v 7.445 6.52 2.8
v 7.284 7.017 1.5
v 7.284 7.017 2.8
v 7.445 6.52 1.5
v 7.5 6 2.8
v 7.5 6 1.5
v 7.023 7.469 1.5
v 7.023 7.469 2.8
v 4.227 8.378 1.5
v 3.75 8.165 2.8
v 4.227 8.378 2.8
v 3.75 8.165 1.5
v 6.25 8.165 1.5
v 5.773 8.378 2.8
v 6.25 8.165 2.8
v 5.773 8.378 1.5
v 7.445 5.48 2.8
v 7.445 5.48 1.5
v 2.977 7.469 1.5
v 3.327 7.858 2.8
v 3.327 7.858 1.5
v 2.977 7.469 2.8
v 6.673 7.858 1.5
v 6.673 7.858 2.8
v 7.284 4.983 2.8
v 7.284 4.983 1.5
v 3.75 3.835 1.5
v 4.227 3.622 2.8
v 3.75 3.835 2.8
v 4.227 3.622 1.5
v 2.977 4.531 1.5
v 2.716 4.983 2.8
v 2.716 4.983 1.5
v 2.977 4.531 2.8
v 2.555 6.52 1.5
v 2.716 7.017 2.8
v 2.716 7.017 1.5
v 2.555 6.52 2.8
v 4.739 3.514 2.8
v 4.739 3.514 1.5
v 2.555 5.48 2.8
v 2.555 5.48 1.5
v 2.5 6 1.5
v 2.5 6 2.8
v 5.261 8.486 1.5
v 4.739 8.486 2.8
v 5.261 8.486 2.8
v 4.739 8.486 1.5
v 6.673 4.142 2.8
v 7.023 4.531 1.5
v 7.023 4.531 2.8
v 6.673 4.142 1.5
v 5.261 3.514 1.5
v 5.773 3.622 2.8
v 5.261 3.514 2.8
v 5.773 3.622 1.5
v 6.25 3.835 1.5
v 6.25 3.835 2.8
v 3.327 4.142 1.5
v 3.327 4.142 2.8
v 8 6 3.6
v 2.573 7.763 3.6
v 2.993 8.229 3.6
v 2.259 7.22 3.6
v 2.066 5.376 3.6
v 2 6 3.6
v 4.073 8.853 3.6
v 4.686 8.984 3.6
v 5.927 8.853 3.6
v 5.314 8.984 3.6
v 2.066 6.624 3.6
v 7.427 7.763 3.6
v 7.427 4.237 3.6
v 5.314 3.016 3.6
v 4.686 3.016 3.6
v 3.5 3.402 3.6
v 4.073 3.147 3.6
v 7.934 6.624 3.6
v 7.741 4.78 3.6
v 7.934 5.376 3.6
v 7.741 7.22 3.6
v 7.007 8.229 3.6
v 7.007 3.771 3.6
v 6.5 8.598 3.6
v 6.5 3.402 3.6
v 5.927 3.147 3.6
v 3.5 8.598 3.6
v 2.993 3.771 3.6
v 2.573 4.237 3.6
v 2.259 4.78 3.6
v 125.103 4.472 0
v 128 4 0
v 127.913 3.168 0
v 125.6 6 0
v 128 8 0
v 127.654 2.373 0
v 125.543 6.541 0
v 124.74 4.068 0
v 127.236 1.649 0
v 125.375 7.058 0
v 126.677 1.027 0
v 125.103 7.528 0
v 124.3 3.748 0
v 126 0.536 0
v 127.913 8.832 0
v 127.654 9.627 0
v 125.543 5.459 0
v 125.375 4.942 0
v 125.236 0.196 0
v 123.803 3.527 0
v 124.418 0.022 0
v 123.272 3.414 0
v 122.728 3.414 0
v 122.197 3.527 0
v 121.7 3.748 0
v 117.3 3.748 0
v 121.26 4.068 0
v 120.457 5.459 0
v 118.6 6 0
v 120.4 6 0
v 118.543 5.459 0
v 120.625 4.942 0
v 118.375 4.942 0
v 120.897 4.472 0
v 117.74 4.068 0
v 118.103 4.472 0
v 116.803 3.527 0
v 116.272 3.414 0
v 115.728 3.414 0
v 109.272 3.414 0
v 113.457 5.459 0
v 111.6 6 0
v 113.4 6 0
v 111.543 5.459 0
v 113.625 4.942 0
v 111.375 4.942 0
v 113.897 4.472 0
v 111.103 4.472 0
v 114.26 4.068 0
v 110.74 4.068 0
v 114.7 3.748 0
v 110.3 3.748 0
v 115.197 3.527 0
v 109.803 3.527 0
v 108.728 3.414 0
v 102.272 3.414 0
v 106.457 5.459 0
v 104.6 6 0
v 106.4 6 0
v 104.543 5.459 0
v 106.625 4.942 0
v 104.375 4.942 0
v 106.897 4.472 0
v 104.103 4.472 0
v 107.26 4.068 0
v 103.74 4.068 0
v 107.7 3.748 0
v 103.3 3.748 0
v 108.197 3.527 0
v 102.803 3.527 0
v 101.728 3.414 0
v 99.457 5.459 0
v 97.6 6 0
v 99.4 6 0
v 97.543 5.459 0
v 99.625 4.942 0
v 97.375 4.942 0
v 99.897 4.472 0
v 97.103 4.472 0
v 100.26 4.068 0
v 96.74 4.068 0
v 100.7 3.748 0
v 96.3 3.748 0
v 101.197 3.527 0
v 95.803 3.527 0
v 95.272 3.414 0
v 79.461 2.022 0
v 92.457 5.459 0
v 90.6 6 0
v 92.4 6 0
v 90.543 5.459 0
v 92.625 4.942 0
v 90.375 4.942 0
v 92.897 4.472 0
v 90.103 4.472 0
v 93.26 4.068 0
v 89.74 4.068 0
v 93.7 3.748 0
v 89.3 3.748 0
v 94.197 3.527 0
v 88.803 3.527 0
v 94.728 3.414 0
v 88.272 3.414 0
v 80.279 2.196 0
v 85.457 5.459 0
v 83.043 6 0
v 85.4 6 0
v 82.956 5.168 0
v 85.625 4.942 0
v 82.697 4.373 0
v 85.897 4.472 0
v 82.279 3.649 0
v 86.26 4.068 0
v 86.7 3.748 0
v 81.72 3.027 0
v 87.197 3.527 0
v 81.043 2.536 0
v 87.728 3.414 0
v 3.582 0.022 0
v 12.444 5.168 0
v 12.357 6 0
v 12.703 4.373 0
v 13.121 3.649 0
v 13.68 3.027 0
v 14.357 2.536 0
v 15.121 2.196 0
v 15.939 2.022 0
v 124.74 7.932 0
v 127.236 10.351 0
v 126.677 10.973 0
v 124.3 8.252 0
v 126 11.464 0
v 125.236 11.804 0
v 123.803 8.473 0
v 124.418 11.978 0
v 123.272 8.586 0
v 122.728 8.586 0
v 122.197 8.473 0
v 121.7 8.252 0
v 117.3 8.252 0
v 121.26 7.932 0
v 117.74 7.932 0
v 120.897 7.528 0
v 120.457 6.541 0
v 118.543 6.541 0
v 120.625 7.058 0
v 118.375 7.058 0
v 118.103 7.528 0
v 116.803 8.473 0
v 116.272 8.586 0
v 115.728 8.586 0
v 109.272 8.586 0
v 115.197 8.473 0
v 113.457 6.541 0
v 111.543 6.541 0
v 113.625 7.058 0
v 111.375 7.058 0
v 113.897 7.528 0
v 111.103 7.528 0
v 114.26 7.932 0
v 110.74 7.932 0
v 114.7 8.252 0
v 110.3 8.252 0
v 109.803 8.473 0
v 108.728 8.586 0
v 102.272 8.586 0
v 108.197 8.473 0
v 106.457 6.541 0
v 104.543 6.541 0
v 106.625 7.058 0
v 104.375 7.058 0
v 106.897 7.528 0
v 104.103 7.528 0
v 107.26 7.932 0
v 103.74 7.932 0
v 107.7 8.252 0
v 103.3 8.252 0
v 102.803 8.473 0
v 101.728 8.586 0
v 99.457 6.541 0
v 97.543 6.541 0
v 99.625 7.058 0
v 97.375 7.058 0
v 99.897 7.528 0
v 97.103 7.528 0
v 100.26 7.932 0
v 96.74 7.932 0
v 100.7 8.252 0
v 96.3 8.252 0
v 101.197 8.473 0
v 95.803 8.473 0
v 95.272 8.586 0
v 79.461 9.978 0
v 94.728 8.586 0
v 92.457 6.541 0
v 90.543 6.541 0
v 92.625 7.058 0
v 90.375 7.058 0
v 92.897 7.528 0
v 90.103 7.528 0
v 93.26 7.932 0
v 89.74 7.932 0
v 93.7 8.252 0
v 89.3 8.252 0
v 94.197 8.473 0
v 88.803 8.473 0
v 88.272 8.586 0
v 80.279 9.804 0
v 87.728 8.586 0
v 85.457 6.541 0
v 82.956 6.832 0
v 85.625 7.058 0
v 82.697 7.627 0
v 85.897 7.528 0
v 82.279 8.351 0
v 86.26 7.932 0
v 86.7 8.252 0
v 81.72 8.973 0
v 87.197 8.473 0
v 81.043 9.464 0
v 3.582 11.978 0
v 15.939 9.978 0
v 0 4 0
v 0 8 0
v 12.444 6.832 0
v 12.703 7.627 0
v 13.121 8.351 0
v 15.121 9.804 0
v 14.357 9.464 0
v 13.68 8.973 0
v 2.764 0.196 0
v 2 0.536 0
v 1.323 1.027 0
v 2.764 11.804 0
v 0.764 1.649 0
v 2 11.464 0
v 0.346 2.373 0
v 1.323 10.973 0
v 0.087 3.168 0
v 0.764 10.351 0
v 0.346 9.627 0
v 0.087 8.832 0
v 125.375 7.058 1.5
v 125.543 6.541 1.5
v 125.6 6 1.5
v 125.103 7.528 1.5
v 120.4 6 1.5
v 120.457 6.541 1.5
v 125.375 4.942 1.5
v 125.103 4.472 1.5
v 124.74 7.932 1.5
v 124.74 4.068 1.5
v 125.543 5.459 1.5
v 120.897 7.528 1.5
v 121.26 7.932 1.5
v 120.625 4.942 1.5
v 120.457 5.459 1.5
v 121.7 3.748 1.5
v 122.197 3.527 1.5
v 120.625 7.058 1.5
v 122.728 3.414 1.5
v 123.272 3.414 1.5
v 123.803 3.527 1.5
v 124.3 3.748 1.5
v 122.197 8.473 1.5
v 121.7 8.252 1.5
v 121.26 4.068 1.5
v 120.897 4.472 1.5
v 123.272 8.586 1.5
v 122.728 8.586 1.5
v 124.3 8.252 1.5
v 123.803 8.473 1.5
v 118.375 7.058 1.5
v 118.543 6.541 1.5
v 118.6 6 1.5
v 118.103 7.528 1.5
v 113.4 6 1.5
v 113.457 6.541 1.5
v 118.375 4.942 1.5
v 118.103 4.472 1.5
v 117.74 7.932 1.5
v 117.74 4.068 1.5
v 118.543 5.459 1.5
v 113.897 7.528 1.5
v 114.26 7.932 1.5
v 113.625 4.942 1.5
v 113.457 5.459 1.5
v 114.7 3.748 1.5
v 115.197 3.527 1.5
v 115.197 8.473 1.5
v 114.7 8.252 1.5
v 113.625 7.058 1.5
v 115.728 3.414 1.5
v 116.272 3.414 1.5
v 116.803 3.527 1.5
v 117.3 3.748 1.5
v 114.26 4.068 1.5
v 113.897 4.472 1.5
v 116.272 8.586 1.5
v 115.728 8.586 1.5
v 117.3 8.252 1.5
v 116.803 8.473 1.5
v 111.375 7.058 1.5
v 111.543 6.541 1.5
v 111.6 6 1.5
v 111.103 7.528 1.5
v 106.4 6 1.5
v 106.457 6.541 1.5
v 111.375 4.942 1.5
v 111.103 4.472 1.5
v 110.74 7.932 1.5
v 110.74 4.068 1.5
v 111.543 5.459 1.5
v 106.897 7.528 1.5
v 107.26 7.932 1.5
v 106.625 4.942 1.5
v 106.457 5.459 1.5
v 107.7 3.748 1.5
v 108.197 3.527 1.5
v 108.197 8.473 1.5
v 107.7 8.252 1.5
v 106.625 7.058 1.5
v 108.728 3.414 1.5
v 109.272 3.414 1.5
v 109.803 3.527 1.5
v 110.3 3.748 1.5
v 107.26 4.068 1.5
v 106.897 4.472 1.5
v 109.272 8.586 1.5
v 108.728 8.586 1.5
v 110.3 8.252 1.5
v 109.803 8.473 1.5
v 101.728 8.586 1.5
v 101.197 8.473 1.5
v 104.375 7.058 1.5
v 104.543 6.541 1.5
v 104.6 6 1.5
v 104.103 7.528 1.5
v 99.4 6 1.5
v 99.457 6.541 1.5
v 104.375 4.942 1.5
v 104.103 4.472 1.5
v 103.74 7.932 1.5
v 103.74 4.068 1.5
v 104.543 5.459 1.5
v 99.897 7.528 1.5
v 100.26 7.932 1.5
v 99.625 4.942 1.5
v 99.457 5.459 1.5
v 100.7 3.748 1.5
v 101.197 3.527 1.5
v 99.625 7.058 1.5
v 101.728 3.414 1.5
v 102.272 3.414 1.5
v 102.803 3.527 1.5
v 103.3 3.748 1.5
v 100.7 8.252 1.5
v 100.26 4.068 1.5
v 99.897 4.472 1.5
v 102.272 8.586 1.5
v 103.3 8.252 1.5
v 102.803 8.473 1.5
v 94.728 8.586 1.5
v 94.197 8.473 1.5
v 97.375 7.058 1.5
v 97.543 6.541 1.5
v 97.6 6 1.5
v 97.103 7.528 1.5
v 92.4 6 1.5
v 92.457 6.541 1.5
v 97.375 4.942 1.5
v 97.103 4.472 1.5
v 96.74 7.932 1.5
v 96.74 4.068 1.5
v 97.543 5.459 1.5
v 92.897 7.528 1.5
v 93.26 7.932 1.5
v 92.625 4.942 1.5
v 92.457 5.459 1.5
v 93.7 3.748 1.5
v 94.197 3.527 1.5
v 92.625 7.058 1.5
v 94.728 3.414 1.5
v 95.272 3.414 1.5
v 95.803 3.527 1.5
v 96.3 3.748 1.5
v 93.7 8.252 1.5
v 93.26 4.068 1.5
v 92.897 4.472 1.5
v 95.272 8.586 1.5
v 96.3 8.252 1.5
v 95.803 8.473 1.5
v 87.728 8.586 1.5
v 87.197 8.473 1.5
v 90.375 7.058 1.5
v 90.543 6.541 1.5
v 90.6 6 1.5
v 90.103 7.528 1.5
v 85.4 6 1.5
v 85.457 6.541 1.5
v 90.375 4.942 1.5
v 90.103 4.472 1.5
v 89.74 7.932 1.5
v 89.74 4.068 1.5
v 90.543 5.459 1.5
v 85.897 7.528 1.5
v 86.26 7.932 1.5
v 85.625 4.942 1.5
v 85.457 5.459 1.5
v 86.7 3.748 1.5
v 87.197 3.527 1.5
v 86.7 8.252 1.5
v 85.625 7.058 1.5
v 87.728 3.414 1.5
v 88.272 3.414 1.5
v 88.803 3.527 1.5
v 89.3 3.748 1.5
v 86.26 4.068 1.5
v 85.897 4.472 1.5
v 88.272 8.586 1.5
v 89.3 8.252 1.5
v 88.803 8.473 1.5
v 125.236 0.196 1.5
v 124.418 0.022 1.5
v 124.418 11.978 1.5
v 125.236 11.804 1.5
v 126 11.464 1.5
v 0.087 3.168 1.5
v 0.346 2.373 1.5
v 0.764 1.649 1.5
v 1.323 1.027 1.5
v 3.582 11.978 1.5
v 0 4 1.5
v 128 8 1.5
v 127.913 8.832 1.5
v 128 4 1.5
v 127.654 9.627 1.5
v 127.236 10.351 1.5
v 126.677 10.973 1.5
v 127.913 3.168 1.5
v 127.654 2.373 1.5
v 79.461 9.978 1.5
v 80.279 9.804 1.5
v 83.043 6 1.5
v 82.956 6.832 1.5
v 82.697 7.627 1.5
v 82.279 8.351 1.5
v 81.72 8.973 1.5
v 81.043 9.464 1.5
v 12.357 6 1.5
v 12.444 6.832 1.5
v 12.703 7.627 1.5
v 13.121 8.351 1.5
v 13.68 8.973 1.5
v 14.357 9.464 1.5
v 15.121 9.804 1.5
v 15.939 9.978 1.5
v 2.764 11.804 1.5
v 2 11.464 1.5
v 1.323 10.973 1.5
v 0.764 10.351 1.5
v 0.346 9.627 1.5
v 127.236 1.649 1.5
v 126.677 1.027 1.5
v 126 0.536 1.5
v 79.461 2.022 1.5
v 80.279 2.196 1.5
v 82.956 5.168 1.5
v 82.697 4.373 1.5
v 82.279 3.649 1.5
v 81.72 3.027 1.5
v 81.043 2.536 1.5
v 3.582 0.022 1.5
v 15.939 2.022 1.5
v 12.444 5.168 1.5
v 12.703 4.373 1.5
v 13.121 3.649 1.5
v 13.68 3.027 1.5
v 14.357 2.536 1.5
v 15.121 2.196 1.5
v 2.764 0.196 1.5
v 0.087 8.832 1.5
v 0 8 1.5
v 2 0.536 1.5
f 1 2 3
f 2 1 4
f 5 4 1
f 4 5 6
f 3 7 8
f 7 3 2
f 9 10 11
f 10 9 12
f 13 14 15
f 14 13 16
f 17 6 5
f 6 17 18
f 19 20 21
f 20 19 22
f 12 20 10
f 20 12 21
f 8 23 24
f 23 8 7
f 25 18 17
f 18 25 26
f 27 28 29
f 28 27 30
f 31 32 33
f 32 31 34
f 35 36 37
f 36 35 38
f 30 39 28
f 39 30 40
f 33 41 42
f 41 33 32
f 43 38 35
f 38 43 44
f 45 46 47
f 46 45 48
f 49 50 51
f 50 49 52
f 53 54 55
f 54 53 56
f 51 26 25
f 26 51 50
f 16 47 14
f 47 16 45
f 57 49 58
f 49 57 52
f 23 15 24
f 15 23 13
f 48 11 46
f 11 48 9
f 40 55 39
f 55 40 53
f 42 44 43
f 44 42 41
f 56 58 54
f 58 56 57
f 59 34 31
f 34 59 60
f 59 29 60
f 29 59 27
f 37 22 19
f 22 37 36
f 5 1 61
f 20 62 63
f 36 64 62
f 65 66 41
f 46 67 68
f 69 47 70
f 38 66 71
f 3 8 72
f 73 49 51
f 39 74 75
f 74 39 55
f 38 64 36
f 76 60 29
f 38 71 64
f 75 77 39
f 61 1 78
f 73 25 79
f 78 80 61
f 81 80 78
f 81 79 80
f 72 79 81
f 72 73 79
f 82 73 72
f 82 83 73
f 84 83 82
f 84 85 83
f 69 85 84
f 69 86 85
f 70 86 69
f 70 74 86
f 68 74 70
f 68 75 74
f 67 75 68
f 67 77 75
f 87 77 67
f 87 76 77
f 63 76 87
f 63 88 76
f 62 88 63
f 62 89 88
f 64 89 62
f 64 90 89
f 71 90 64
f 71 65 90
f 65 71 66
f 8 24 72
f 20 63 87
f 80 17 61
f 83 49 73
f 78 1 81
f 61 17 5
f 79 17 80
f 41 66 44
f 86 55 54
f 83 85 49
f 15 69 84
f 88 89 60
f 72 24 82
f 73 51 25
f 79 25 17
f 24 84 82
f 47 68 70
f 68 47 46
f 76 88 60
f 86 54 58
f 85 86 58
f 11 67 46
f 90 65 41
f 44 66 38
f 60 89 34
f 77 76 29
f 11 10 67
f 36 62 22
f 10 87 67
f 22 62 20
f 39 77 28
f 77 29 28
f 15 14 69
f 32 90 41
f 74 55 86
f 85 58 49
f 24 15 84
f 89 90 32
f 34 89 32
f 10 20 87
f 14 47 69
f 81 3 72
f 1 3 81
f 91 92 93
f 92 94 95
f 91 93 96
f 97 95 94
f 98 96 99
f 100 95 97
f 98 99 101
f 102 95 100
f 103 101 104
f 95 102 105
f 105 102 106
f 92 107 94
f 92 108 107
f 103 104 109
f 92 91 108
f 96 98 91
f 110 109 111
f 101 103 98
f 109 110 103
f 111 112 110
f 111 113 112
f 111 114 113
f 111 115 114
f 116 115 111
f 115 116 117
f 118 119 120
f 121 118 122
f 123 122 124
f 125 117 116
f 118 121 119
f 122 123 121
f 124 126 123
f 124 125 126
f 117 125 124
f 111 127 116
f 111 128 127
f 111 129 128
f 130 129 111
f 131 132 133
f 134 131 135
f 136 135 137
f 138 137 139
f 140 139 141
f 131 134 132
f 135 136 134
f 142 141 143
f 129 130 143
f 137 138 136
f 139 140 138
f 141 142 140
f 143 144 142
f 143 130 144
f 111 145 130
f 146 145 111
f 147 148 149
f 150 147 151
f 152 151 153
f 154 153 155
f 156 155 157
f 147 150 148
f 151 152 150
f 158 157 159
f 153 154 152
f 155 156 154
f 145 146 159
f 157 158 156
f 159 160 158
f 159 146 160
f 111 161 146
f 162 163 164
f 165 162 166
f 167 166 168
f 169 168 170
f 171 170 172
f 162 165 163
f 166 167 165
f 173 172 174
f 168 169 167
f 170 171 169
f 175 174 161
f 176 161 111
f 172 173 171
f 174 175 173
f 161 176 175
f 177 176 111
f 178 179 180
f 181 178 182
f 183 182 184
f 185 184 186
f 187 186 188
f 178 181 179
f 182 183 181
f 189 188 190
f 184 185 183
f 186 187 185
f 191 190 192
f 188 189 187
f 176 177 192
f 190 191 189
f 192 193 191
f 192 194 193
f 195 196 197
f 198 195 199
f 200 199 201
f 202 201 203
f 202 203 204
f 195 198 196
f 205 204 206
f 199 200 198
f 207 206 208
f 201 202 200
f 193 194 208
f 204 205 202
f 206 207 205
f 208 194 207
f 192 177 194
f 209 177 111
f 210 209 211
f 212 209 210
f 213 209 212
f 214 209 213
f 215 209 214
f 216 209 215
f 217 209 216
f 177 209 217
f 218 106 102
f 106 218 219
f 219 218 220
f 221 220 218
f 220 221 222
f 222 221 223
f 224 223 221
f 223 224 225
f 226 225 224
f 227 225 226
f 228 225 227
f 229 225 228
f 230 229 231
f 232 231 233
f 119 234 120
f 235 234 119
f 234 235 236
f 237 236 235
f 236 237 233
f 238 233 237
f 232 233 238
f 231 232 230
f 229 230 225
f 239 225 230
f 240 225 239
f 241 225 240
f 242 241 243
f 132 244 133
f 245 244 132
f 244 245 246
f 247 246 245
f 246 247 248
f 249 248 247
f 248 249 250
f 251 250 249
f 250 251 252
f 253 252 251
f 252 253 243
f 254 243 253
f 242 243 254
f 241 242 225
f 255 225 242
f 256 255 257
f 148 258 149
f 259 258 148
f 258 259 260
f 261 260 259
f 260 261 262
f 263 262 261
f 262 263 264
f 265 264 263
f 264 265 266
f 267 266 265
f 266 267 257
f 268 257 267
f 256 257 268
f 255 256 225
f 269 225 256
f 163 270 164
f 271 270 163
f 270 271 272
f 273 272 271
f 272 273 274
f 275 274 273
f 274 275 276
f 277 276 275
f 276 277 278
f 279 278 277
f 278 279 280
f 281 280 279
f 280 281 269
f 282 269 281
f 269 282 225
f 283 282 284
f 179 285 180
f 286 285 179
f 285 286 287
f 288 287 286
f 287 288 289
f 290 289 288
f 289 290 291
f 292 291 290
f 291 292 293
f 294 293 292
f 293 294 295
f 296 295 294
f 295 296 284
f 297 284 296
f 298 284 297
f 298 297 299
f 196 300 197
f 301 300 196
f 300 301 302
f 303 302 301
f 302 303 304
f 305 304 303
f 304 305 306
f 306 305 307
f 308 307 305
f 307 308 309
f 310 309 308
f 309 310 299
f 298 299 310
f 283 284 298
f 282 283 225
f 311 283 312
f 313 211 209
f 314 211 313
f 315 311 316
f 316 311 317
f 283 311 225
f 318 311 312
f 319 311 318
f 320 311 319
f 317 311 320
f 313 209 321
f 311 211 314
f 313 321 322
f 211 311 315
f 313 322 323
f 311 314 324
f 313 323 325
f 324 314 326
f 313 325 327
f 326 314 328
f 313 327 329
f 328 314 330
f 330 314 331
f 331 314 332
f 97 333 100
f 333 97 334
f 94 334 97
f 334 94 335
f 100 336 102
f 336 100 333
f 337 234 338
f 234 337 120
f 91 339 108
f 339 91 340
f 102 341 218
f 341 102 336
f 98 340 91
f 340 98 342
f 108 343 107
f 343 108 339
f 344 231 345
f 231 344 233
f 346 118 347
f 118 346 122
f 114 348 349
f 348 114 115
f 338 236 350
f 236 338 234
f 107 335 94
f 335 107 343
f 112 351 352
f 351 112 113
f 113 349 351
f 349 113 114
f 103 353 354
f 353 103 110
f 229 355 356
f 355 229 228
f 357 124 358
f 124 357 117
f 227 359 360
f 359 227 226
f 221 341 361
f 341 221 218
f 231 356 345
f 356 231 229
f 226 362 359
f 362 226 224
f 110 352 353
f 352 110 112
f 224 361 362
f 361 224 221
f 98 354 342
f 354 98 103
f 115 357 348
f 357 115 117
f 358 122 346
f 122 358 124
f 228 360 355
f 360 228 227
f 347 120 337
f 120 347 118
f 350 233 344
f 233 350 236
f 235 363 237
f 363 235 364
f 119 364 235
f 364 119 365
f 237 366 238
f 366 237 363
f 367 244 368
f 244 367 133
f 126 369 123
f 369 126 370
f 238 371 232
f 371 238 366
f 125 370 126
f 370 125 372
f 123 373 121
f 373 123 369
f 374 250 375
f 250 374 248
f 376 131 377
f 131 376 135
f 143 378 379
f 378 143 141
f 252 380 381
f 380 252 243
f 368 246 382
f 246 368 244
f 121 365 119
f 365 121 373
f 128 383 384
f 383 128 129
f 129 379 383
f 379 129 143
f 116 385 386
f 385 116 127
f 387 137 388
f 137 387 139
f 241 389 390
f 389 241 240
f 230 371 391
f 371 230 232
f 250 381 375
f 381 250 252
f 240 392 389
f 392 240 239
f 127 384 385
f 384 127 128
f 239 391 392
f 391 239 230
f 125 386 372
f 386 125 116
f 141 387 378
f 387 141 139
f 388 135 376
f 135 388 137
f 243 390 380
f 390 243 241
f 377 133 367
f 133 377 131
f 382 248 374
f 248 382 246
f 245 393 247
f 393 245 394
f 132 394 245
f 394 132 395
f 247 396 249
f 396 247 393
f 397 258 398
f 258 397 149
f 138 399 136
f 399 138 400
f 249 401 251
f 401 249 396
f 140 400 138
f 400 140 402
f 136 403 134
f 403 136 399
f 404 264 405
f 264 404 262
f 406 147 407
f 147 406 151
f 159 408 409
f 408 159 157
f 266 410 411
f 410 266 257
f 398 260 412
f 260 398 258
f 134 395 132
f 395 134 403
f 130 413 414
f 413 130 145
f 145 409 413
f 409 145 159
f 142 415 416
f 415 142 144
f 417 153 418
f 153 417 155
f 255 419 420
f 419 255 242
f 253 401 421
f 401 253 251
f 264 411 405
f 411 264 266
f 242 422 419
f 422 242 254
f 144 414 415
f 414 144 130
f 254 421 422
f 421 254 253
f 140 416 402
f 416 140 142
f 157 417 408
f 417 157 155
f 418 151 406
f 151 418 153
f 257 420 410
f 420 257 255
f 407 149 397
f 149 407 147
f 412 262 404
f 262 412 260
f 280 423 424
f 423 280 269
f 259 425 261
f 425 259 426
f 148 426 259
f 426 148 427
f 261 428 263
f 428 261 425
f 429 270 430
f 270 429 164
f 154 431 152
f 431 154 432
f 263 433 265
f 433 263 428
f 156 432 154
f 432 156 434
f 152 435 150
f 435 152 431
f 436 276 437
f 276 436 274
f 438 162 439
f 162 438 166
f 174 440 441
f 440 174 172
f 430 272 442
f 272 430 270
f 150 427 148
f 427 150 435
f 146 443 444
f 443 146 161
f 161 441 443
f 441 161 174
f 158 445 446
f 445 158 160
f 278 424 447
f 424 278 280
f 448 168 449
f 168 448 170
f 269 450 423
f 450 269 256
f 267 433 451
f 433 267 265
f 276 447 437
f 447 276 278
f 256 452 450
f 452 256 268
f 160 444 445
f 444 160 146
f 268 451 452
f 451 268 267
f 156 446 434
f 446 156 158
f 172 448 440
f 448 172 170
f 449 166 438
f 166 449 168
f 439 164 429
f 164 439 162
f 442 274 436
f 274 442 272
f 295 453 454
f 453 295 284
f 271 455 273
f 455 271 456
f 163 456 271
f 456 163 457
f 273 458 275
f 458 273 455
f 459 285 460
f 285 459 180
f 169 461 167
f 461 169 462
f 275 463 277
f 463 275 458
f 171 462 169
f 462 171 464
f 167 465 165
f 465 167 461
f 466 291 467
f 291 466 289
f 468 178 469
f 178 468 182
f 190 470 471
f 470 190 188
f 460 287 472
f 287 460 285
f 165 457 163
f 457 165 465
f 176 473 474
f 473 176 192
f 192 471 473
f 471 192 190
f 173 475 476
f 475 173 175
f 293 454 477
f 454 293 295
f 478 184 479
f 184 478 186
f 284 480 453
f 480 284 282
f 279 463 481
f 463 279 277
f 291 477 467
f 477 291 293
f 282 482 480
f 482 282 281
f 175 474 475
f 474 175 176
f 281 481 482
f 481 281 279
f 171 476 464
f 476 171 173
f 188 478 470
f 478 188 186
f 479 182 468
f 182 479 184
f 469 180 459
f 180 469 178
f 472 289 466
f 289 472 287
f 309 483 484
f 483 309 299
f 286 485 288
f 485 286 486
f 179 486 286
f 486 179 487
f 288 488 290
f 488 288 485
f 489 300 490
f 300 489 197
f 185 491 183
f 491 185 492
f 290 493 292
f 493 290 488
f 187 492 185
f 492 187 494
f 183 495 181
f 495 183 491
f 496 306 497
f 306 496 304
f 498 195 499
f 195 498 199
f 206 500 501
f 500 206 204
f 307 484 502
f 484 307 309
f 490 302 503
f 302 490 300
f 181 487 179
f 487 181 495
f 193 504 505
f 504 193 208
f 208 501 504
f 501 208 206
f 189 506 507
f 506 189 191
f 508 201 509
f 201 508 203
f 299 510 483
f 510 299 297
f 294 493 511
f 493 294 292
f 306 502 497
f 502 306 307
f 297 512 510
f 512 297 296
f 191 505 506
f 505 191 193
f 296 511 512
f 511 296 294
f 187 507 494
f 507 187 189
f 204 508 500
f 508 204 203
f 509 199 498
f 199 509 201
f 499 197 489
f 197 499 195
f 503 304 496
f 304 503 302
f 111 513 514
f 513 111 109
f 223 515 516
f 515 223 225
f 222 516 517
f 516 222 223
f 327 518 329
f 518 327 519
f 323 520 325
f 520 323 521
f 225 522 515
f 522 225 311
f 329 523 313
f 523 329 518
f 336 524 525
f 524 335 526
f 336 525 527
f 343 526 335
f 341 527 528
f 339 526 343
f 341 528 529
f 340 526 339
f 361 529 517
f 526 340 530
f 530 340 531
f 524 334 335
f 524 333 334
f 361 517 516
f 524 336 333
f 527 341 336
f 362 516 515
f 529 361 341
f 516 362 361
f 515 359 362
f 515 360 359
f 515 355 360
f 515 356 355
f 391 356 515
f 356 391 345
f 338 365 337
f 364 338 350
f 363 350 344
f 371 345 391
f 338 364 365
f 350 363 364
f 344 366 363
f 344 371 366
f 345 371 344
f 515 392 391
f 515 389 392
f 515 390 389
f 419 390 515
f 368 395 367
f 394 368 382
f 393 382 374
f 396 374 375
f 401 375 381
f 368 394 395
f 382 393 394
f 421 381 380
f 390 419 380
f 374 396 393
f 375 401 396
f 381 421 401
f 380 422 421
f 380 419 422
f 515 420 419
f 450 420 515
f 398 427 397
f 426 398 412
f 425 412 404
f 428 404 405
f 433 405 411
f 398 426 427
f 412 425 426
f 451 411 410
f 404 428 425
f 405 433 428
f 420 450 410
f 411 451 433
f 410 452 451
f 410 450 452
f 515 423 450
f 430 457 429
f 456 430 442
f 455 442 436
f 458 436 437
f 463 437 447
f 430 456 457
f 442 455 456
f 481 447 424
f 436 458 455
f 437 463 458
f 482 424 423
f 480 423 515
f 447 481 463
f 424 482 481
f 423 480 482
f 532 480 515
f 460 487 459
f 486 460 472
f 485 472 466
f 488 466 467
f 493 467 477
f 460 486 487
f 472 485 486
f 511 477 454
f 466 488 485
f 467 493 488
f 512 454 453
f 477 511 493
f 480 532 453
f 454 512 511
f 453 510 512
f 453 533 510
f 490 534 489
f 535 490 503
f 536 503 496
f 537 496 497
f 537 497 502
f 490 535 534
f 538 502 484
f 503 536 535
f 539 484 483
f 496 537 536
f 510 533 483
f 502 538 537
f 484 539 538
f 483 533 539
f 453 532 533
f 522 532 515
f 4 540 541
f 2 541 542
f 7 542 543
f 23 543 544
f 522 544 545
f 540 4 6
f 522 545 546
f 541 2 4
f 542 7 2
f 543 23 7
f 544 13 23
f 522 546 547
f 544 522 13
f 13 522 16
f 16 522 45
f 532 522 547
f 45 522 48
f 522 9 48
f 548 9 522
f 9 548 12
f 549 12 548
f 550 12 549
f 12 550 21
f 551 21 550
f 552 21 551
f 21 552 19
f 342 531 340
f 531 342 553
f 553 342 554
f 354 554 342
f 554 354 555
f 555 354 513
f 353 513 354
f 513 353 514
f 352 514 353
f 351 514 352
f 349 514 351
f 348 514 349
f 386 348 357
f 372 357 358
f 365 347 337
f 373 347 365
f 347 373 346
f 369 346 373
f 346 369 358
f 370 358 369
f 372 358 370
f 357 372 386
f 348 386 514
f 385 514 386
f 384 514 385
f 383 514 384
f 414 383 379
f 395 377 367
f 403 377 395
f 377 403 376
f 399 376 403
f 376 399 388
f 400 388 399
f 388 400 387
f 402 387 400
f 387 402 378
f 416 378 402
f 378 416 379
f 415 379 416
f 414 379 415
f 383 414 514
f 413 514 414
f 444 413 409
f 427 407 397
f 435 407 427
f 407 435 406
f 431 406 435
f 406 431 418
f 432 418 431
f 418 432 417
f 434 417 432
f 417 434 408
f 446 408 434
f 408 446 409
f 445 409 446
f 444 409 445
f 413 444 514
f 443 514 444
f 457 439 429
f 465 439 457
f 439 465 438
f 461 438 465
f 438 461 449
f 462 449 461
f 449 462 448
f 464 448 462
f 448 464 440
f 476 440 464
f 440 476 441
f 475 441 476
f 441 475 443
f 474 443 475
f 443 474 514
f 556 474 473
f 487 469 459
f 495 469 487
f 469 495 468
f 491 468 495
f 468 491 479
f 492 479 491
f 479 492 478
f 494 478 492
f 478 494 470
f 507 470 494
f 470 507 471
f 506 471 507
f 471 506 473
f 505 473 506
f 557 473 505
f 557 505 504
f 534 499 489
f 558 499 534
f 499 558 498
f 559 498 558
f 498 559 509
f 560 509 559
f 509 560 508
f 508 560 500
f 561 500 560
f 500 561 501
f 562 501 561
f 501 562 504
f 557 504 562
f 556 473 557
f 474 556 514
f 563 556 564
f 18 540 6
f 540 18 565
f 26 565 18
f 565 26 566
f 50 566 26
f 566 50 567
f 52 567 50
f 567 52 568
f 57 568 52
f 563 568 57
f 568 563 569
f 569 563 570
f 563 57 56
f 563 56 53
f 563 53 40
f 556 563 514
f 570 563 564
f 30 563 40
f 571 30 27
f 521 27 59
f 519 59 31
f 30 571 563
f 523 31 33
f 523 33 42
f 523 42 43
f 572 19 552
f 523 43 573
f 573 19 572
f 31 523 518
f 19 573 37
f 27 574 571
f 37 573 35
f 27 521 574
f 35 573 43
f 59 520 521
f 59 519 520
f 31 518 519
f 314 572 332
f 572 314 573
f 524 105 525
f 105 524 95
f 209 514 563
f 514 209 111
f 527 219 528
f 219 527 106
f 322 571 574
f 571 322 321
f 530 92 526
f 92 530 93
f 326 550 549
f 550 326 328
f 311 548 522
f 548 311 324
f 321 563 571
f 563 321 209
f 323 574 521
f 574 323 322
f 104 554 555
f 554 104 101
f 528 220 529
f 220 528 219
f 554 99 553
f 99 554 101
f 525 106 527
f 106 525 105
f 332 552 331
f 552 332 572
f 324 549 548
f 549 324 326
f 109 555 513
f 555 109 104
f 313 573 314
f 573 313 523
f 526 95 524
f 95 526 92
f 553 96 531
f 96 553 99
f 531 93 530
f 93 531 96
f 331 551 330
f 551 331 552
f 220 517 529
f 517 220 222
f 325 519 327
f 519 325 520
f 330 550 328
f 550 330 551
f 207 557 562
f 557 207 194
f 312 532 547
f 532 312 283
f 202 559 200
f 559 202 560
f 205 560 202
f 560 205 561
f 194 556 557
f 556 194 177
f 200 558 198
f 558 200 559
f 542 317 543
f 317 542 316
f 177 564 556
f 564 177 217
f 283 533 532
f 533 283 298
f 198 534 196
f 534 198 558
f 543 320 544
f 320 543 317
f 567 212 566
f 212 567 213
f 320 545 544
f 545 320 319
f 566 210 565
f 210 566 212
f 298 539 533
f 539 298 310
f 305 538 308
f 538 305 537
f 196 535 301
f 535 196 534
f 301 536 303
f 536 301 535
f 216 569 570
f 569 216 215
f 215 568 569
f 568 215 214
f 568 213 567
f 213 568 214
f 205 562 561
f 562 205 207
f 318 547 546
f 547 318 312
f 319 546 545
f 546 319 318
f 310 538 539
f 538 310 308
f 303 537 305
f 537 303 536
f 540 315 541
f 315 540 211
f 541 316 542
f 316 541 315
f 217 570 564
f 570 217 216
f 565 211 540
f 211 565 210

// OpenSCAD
// Bracelet basic parameters
length = 128;    // Total length in mm
width = 12;      // Width of the band in mm
height = 1.5;    // Thickness/height of the band in mm
bevel_radius = 4; // Radius for the beveled/curved edges

// Improved closure system parameters
peg_diameter = 5;      // Increased diameter for more strength
peg_height = 2.6;      // Taller peg for better retention
peg_top_diameter = 6; // Flared top for secure fastening
peg_base_height = 1;   // Height of the reinforced base
hole_diameter = 5.2;   // Slightly larger than peg for good fit
num_holes = 6;         // Number of adjustment holes
hole_spacing = 7;      // Distance between hole centers
peg_offset = 5;        // Distance from end to peg

// Calculate the available space between peg and the hole area
hole_area_width = (num_holes - 1) * hole_spacing;  // Width of the area containing all holes
last_hole_position = length - peg_offset - (num_holes - 1) * hole_spacing;  // Position of the last hole
peg_position = peg_offset;  // Position of the peg

// Define the safe area for the rectangle
safe_start = peg_position + peg_diameter + 2;  // Safe distance after the peg
safe_end = last_hole_position - hole_diameter/2 - 2;  // Safe distance before the last hole
available_space = safe_end - safe_start;  // Available space for the rectangle

// Center rectangular cutout parameters
rect_width_percentage = 0.99;  // Width as percentage of available space (0.0-1.0)
rect_width = available_space * rect_width_percentage;  // Width calculated automatically
rect_height = 8;      // Height of the rectangular cutout
rect_bevel = 4;       // Bevel radius for the rectangular cutout
rect_offset_y = 0;    // Vertical offset from center (positive = up)

// Calculate the center position between peg and holes area
rect_center = safe_start + (available_space / 2);
rect_offset_x = rect_center - (length/2);  // Offset from bracelet center

module rounded_band() {
    // Create the main band with rounded edges
    hull() {
        translate([bevel_radius, bevel_radius, 0])
        cylinder(r=bevel_radius, h=height, $fn=30);
        
        translate([length - bevel_radius, bevel_radius, 0])
        cylinder(r=bevel_radius, h=height, $fn=30);
        
        translate([bevel_radius, width - bevel_radius, 0])
        cylinder(r=bevel_radius, h=height, $fn=30);
        
        translate([length - bevel_radius, width - bevel_radius, 0])
        cylinder(r=bevel_radius, h=height, $fn=30);
    }
}

// Rounded rectangle cutout module
module rounded_rect_cutout(width, height, radius, thick) {
    hull() {
        translate([radius, radius, -0.1])
        cylinder(r=radius, h=thick+0.2, $fn=30);
        
        translate([width - radius, radius, -0.1])
        cylinder(r=radius, h=thick+0.2, $fn=30);
        
        translate([radius, height - radius, -0.1])
        cylinder(r=radius, h=thick+0.2, $fn=30);
        
        translate([width - radius, height - radius, -0.1])
        cylinder(r=radius, h=thick+0.2, $fn=30);
    }
}

// Main bracelet body with cutouts
difference() {
    rounded_band();
    
    // Create adjustment holes on one end
    for (i = [0:num_holes-1]) {
        translate([length - peg_offset - (i * hole_spacing), width/2, -0.1])
        cylinder(d=hole_diameter, h=height+0.2, $fn=30);
    }
    
    // Add center rectangular cutout
    // Position it in the center between peg and first hole
    translate([length/2 - rect_width/2 + rect_offset_x, width/2 - rect_height/2 + rect_offset_y, 0])
    rounded_rect_cutout(rect_width, rect_height, rect_bevel, height);
}

// Add a single peg on the other end with reinforced base
translate([peg_offset, width/2, 0]) {
    // Reinforced base for the peg
    cylinder(d=peg_diameter + 2, h=peg_base_height, $fn=30);
    
    // Peg with flared top
    translate([0, 0, peg_base_height]) {
        // Main peg body
        cylinder(d1=peg_diameter, d2=peg_diameter, h=peg_height-0.8, $fn=30);
        
        // Flared top portion
        translate([0, 0, peg_height-0.8])
        cylinder(d1=peg_diameter, d2=peg_top_diameter, h=0.8, $fn=30);
    }
}

// Add some debug text to verify dimensions
echo("Total length:", length);
echo("Peg position:", peg_offset);
echo("First hole position:", length - peg_offset);
echo("Last hole position:", last_hole_position);
echo("Safe start position:", safe_start);
echo("Safe end position:", safe_end);
echo("Available space:", available_space);
echo("Rectangle width:", rect_width);
echo("Rectangle center position:", rect_center);
